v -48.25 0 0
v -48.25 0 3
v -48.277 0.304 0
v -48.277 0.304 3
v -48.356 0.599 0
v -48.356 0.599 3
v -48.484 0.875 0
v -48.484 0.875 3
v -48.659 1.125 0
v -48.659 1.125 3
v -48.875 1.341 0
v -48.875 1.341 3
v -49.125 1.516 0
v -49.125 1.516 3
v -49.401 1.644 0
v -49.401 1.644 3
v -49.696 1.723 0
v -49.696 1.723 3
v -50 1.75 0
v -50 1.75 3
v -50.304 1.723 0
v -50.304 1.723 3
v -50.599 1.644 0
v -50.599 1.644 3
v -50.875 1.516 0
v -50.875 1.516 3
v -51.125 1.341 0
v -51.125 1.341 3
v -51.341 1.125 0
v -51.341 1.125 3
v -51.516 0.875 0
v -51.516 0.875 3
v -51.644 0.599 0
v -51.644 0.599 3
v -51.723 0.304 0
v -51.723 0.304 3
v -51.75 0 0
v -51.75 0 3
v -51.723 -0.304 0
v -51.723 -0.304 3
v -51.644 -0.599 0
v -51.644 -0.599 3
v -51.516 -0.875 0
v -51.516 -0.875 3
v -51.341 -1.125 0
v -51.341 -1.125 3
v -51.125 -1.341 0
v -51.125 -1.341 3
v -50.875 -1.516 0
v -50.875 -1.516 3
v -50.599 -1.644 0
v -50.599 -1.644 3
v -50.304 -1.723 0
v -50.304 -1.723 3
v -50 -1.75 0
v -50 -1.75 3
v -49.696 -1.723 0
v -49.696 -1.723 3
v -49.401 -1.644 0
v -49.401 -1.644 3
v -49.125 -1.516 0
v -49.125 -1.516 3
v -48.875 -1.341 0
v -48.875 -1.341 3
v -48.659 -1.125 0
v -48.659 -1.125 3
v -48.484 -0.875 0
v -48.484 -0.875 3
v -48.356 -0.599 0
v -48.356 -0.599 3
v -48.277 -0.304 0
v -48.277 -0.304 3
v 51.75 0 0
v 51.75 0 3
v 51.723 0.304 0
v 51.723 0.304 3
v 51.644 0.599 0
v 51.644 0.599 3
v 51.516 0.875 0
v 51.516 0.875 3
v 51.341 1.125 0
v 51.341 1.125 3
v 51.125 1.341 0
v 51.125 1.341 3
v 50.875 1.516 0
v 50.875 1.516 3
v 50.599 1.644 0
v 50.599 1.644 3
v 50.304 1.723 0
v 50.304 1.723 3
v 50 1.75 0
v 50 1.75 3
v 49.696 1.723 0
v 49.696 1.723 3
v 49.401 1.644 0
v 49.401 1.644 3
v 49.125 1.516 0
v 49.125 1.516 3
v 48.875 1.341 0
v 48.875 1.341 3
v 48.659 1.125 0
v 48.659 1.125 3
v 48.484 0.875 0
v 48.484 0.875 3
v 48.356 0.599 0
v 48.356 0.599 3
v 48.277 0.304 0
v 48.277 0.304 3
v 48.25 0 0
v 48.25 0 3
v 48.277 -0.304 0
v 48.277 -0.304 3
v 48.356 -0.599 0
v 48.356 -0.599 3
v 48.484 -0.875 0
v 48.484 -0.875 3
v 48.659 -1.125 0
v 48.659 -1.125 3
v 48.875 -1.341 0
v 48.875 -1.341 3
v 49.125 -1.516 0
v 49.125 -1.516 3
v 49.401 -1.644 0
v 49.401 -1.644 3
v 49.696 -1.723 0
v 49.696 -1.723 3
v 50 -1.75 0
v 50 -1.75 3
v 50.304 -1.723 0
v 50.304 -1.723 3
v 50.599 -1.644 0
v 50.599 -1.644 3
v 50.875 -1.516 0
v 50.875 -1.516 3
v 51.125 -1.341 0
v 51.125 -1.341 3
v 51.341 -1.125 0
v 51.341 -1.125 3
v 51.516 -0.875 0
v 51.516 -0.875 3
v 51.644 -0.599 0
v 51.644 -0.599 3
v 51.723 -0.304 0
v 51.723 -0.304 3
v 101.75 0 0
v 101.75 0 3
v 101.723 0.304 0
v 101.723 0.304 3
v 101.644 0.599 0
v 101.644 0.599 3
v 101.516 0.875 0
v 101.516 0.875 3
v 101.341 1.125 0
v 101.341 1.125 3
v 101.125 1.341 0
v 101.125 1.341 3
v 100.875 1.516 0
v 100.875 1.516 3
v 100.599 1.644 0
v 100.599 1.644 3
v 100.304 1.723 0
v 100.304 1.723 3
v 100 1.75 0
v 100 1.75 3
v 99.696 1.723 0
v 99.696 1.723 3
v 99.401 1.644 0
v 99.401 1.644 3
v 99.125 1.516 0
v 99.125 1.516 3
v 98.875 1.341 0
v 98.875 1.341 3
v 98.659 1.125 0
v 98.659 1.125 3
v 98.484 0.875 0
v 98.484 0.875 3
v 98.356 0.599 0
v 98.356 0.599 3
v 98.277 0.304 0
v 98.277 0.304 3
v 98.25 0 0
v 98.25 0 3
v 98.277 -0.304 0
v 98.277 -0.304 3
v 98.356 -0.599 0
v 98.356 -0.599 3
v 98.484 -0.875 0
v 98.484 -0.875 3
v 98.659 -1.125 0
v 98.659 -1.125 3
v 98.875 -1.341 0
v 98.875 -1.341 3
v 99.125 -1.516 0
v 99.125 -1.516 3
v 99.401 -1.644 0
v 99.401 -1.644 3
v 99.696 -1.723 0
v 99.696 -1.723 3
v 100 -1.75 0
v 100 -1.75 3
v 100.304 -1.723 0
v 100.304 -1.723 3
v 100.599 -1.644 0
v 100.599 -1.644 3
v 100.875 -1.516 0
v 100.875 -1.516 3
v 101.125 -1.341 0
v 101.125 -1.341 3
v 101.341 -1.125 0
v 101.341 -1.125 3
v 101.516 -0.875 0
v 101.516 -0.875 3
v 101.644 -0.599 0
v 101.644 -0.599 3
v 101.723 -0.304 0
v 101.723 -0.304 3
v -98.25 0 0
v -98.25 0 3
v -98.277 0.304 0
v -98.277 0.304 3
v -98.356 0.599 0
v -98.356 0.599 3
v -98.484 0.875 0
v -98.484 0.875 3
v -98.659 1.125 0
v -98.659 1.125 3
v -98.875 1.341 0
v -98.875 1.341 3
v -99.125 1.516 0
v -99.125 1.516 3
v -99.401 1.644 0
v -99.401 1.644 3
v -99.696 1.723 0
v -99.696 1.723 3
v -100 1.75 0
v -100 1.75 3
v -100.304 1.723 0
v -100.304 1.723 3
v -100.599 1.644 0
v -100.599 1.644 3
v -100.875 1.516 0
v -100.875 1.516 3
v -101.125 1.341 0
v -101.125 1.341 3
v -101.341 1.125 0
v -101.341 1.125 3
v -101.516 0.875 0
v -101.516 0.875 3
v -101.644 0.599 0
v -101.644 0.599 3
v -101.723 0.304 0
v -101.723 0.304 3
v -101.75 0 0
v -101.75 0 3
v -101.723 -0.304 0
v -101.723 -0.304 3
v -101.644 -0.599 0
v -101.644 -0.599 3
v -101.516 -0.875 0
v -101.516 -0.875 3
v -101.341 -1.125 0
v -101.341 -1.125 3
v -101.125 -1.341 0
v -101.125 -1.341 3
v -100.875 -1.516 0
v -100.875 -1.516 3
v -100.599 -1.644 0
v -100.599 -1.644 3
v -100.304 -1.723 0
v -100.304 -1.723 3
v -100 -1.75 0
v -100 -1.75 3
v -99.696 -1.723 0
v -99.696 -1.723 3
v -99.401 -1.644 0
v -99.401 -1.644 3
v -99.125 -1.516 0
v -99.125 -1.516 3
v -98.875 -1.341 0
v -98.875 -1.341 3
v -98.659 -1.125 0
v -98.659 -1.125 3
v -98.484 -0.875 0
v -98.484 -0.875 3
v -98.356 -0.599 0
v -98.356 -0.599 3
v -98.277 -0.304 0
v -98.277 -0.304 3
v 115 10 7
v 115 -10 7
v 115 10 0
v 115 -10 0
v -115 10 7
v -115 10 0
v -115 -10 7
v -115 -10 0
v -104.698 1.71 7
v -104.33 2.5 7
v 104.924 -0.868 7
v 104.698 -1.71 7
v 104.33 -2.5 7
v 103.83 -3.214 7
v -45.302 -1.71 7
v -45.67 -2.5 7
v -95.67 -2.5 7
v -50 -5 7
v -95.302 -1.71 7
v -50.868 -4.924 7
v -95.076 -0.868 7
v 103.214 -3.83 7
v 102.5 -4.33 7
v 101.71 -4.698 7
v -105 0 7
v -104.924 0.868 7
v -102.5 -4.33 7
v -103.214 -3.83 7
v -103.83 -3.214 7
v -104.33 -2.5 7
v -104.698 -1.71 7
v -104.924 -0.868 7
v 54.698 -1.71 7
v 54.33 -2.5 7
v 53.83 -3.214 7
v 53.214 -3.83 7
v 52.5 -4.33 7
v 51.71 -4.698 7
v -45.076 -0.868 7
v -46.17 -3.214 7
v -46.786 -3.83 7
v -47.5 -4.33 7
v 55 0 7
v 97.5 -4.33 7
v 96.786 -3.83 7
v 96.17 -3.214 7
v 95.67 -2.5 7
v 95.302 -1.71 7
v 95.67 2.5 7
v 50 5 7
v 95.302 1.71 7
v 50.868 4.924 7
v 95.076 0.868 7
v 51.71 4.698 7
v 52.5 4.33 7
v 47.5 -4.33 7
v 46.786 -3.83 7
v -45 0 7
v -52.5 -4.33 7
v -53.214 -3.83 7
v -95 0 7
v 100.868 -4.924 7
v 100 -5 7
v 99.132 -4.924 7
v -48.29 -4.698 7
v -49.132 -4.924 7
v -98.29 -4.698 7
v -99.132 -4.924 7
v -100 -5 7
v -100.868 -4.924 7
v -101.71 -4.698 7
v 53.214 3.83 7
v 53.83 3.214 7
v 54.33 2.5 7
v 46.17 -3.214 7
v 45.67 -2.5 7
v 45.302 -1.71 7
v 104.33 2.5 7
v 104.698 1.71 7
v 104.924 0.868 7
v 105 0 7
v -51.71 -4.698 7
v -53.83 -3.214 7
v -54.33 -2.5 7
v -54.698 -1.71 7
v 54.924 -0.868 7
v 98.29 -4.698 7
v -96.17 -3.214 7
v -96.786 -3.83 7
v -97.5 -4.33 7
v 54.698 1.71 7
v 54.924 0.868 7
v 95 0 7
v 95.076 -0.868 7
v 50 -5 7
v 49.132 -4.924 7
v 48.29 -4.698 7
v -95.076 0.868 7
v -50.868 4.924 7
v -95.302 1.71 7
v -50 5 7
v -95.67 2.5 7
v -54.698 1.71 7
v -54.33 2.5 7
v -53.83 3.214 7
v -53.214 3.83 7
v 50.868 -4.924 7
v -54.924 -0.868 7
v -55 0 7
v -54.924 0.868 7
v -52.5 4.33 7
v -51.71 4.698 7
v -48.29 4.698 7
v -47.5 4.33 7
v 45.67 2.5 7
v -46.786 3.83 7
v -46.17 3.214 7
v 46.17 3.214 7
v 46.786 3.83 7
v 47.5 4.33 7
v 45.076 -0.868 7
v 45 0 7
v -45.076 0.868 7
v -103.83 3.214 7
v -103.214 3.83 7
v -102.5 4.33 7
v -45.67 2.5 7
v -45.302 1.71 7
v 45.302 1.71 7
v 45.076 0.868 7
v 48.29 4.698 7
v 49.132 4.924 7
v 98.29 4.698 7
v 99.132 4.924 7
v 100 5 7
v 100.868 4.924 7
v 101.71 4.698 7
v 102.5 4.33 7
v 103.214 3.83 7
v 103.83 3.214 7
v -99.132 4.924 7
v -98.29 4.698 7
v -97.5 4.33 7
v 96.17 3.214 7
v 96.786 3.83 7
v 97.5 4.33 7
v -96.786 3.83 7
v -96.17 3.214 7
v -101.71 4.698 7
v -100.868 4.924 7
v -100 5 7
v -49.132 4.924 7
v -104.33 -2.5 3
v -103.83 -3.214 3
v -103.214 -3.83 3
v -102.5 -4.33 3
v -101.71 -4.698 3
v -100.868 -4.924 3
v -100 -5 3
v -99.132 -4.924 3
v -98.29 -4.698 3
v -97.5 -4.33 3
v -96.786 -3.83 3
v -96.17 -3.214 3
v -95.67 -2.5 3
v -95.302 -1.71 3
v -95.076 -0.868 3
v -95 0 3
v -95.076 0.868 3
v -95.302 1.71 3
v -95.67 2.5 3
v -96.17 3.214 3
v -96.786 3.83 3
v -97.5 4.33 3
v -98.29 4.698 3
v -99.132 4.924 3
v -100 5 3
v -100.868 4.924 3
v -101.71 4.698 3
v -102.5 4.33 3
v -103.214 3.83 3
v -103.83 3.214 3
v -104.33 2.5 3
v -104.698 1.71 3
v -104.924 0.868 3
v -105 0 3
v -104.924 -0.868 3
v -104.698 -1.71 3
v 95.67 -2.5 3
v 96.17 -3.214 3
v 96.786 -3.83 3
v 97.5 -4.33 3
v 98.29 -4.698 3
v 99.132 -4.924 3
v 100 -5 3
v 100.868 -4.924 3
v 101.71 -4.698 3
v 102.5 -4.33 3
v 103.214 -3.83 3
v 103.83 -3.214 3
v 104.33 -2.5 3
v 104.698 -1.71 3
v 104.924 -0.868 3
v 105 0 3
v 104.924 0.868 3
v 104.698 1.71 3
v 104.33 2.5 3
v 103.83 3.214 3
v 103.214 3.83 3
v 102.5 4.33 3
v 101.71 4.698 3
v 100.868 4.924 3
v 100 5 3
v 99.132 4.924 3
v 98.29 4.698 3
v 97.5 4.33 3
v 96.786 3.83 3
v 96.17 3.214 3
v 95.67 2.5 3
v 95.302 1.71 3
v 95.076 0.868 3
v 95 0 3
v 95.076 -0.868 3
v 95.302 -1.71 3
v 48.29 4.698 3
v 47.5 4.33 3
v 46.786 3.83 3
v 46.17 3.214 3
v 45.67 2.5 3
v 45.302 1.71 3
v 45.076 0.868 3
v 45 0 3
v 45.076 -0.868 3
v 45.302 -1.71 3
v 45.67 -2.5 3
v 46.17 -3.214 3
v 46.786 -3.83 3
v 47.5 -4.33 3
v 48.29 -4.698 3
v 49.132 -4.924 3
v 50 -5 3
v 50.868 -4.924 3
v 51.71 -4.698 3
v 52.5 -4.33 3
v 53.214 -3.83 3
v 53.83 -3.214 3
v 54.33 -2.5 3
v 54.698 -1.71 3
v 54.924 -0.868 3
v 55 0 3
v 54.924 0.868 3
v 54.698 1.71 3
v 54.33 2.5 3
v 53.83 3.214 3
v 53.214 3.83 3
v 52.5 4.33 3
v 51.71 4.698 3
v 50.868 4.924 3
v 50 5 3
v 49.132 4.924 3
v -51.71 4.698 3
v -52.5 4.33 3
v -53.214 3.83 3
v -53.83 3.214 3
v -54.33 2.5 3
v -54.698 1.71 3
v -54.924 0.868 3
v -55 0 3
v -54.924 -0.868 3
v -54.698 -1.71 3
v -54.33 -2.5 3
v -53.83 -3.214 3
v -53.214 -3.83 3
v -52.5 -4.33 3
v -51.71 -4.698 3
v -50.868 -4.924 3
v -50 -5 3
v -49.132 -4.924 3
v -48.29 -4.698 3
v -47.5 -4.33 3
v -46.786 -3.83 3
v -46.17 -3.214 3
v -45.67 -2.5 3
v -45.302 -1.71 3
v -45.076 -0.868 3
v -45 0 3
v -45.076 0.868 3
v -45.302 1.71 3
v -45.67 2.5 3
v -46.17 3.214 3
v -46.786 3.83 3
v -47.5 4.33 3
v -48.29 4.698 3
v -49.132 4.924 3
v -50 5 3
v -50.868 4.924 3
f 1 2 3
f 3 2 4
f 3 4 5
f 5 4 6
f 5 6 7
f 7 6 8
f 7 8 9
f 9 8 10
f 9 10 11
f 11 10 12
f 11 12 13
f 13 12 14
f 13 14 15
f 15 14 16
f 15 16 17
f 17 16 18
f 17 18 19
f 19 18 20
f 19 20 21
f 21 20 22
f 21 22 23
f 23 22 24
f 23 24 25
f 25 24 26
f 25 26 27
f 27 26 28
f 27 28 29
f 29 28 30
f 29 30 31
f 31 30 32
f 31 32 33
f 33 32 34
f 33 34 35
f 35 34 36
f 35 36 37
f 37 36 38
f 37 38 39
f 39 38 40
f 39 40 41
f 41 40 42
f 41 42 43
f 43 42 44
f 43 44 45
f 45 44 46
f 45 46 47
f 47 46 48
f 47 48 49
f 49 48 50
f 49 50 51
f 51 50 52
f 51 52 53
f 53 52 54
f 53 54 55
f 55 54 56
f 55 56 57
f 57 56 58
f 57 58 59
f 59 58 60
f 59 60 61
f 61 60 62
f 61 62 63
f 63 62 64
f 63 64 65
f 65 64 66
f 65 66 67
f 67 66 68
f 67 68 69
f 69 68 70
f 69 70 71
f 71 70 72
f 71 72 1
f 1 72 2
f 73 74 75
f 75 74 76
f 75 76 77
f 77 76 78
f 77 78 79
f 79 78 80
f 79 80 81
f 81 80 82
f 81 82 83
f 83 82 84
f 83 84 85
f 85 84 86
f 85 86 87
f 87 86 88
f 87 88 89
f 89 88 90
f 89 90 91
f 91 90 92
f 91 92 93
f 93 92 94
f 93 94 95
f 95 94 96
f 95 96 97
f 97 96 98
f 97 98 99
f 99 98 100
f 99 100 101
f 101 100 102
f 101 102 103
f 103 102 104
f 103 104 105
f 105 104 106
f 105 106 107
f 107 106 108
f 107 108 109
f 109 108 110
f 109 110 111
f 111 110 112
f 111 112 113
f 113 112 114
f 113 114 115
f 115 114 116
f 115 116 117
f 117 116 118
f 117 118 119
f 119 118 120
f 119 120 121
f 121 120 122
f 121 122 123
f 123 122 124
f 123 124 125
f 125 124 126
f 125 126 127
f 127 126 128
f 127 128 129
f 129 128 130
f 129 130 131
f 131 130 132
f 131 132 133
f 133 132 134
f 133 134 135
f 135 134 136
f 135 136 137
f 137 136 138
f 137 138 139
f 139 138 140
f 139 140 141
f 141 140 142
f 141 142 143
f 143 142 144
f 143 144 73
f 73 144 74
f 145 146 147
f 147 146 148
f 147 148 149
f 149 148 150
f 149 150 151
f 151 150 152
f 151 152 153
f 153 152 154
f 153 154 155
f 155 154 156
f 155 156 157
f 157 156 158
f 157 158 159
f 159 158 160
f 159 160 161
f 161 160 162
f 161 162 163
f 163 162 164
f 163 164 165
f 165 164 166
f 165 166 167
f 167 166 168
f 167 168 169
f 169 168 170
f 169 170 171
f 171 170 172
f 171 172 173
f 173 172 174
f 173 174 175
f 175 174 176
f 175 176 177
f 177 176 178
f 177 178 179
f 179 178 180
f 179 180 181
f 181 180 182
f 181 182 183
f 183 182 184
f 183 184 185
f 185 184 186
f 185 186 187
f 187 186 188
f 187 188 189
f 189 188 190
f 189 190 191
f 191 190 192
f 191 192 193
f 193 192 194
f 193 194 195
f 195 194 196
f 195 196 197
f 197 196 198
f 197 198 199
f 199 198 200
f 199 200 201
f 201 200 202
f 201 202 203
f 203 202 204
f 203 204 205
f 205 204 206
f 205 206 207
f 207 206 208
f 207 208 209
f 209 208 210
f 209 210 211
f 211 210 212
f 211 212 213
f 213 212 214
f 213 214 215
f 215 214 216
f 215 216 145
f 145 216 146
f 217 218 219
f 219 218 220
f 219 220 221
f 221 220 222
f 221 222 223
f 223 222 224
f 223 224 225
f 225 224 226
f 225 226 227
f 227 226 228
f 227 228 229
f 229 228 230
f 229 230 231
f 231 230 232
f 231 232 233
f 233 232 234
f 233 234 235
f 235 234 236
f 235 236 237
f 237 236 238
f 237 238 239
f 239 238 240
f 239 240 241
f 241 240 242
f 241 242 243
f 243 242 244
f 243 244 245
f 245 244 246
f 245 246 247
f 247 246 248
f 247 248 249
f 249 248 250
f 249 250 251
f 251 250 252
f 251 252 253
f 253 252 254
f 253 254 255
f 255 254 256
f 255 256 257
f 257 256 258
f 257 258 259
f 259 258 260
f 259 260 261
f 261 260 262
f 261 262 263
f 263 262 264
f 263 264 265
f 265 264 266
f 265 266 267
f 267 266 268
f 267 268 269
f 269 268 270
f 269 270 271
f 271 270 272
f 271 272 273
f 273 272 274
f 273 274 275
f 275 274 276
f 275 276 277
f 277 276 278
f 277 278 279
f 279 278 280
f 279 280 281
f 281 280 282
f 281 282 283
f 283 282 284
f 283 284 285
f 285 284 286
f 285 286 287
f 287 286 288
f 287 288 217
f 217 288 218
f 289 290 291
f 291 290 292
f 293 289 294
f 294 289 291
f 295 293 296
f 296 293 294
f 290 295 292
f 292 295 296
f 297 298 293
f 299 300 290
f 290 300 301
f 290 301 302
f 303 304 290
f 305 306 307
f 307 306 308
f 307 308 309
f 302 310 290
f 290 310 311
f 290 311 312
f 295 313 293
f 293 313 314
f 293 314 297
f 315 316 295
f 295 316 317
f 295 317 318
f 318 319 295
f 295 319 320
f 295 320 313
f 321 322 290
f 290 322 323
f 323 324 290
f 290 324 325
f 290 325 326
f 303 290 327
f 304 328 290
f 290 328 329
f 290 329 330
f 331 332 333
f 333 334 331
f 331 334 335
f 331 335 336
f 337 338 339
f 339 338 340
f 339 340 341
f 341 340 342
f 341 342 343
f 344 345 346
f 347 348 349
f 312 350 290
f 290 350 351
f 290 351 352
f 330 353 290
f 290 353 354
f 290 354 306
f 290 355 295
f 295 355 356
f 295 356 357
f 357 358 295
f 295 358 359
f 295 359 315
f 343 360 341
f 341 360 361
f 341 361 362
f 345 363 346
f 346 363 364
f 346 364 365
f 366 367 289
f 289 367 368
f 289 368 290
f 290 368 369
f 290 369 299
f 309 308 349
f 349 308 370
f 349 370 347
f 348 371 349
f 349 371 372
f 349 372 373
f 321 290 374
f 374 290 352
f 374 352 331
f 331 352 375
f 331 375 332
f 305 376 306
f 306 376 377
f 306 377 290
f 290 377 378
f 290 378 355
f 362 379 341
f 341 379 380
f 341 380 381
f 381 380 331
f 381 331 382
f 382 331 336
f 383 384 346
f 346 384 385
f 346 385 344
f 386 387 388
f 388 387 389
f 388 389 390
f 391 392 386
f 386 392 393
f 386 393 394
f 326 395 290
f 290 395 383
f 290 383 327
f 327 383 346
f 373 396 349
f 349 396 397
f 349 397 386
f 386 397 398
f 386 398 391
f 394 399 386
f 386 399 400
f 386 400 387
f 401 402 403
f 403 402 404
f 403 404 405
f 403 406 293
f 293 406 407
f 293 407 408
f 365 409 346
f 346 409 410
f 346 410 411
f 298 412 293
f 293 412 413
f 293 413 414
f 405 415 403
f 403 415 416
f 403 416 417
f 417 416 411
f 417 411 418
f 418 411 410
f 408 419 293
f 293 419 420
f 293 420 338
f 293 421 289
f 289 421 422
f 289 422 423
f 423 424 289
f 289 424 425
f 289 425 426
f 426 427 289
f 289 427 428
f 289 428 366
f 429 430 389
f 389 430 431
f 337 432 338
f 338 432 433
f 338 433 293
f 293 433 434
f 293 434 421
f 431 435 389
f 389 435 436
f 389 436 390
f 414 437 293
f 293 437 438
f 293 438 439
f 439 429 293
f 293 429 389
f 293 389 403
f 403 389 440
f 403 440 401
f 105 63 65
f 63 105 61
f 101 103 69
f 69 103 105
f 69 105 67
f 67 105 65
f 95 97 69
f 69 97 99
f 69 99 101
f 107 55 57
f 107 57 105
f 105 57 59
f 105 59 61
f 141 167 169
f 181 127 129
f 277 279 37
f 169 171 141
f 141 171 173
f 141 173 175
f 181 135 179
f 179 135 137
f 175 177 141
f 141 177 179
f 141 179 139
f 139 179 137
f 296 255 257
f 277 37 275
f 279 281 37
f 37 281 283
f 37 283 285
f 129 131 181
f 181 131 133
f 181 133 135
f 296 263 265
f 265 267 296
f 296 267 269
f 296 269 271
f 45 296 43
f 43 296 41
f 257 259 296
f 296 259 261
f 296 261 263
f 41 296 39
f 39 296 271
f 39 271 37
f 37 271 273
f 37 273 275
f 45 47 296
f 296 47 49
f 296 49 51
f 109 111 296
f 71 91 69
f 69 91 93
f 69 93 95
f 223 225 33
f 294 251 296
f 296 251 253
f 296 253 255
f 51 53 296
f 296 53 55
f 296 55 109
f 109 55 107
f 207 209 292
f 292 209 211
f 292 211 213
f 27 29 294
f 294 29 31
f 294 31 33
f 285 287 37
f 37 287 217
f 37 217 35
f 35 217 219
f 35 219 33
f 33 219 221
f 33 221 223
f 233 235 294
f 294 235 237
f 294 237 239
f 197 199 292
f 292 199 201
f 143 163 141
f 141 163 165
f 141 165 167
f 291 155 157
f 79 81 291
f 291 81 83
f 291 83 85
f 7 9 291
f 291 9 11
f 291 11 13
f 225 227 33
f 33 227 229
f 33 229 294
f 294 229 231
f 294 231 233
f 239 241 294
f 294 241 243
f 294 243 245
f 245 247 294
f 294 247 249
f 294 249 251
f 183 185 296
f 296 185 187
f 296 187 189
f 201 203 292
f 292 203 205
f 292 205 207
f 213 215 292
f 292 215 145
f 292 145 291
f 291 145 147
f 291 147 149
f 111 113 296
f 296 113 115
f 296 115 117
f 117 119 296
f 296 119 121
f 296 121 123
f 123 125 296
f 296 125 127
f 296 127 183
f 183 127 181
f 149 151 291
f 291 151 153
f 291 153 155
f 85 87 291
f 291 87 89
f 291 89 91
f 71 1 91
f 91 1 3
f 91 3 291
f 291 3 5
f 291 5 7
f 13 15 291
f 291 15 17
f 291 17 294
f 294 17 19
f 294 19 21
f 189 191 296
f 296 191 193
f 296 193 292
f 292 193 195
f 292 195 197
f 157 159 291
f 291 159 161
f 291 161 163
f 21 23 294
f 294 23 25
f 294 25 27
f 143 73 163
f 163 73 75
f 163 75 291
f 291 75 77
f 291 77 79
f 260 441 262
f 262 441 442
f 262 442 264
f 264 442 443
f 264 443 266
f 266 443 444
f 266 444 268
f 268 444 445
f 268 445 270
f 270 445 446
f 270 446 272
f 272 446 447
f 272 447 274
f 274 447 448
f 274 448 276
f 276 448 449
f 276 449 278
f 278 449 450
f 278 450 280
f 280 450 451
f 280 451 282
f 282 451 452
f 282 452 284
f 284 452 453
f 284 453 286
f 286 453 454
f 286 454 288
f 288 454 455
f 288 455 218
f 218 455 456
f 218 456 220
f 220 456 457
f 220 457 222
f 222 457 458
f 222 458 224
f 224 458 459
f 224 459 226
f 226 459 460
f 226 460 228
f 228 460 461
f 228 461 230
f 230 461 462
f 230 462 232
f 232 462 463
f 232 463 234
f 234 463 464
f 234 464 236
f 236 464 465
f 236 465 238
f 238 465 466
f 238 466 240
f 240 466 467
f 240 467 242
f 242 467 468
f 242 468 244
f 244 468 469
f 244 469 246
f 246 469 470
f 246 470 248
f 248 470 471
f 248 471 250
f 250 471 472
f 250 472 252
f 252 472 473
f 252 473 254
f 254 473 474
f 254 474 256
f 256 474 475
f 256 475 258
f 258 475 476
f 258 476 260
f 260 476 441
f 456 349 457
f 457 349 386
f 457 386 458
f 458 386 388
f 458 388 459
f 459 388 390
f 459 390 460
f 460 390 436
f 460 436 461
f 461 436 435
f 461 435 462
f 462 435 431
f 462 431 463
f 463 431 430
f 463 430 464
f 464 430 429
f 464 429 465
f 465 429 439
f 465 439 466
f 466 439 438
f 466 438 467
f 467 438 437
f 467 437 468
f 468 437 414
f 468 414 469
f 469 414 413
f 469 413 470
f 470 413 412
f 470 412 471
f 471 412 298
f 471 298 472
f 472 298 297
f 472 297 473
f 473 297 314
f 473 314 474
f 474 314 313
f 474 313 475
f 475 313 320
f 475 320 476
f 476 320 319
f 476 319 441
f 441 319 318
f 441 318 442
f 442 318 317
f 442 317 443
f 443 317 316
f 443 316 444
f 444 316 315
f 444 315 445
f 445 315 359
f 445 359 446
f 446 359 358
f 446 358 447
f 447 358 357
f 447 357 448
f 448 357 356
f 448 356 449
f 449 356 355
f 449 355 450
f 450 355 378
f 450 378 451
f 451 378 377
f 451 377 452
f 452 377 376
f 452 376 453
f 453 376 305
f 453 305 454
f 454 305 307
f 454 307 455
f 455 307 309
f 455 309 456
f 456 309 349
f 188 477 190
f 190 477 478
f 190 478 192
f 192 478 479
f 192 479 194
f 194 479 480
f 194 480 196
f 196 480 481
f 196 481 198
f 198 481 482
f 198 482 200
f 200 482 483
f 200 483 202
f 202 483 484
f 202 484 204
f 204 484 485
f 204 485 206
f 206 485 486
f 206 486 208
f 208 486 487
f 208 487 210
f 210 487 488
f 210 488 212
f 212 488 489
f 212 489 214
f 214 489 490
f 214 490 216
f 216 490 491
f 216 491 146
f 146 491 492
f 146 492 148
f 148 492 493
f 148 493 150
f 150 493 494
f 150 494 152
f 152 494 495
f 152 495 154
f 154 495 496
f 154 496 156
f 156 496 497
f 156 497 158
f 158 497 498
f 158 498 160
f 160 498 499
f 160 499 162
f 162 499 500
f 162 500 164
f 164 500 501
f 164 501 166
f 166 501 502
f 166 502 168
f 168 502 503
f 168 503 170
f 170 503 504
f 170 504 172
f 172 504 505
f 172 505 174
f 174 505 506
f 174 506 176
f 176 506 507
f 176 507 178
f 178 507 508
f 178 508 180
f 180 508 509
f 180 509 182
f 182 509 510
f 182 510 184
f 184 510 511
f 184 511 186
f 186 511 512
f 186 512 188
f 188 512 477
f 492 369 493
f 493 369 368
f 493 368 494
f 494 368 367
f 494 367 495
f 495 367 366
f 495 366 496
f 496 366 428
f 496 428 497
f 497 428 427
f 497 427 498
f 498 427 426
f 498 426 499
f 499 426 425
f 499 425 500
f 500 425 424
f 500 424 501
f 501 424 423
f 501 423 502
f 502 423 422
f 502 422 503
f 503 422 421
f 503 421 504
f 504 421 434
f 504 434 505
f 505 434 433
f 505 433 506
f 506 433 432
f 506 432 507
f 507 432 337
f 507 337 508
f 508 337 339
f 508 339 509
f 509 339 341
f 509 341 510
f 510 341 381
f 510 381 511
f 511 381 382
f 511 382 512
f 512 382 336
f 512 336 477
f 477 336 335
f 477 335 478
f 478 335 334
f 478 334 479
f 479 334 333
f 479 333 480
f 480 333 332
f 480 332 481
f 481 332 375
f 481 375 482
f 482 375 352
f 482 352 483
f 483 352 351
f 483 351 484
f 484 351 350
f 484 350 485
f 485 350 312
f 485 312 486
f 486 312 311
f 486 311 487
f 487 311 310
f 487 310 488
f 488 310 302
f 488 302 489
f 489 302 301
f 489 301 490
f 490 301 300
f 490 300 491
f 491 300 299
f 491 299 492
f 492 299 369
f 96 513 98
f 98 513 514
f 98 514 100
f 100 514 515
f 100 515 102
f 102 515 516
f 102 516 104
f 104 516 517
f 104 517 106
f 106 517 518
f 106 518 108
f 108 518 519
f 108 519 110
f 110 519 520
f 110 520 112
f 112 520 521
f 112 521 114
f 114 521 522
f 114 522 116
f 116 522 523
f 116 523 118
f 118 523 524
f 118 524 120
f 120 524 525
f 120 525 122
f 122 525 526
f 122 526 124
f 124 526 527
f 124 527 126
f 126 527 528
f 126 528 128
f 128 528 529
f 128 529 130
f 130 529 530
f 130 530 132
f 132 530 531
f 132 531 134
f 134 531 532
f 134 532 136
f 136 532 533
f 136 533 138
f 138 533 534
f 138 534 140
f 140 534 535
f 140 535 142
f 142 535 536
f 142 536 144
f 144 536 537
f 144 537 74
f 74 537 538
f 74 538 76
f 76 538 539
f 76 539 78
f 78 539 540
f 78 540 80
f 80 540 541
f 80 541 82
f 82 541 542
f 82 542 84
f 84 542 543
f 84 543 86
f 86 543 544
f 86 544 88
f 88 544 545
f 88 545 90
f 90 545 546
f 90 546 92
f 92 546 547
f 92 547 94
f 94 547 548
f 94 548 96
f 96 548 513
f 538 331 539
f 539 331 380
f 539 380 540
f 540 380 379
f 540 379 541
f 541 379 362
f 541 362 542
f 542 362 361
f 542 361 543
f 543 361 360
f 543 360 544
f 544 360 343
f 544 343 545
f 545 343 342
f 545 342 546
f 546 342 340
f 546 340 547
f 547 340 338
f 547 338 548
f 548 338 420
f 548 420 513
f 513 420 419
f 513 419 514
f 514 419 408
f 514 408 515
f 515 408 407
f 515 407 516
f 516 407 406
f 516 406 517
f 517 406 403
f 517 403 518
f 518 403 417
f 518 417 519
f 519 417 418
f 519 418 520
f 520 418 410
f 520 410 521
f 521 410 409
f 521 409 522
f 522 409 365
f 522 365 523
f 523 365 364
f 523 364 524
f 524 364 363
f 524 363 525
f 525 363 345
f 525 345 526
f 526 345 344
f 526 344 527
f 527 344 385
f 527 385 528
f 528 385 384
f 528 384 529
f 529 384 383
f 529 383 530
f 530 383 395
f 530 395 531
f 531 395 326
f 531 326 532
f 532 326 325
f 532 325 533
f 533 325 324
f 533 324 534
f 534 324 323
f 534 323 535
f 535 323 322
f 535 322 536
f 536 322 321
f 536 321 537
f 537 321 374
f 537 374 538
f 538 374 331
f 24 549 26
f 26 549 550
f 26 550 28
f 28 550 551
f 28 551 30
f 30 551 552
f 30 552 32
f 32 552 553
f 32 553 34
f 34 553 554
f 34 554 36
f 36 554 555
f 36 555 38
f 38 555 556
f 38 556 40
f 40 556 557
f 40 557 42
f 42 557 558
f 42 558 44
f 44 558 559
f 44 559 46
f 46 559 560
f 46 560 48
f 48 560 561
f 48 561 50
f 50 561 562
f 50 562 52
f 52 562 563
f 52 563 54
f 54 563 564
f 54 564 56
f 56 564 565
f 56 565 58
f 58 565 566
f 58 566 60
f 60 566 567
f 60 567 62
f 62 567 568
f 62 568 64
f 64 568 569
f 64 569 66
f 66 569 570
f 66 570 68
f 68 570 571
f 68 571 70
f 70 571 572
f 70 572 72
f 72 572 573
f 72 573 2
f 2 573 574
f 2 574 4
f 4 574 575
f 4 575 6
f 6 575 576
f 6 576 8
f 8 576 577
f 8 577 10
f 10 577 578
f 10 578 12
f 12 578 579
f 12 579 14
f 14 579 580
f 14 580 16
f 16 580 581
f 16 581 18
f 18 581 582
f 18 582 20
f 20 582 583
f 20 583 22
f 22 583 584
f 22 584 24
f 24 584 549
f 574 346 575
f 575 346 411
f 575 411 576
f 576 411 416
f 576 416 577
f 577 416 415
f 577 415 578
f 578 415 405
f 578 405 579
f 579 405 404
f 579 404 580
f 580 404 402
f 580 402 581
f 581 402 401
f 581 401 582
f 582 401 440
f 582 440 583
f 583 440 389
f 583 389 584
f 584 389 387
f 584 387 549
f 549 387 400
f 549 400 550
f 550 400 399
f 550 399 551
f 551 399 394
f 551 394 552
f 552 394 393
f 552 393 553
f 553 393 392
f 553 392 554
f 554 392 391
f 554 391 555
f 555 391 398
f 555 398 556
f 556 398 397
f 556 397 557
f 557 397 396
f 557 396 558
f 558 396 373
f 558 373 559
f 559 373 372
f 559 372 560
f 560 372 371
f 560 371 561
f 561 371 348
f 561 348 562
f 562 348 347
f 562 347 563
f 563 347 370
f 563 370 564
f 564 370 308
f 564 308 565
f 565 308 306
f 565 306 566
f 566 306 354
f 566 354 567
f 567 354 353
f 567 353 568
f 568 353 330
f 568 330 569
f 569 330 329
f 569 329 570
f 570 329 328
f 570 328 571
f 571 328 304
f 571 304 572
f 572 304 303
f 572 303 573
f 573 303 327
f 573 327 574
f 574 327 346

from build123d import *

# Parameters (mm, degrees)
SKETCH1_W           = 230
SKETCH1_H           = 20
BOSS_EXTRUDE1_DEPTH = 7
SKETCH2_R           = 1.75
CUT_EXTRUDE1_DEPTH  = 8
SKETCH3_R           = 5
CUT_EXTRUDE2_DEPTH  = 4


with BuildPart() as part:
    # Sketch1 → Boss-Extrude1 (new body)
    with BuildSketch(Plane.XY):
        Rectangle(SKETCH1_W, SKETCH1_H)
    extrude(amount=BOSS_EXTRUDE1_DEPTH)

    # Sketch2 → Cut-Extrude1 (cut, through all)
    with BuildSketch(Plane.XY.offset(7)):
        with Locations((-100, 0)):
            Circle(SKETCH2_R)
        with Locations((100, 0)):
            Circle(SKETCH2_R)
        with Locations((50, 0)):
            Circle(SKETCH2_R)
        with Locations((-50, 0)):
            Circle(SKETCH2_R)
    extrude(amount=-CUT_EXTRUDE1_DEPTH, mode=Mode.SUBTRACT)

    # Sketch3 → Cut-Extrude2 (cut)
    with BuildSketch(Plane.XY.offset(7)):
        with Locations((-100, 0)):
            Circle(SKETCH3_R)
        with Locations((-50, 0)):
            Circle(SKETCH3_R)
        with Locations((50, 0)):
            Circle(SKETCH3_R)
        with Locations((100, 0)):
            Circle(SKETCH3_R)
    extrude(amount=-CUT_EXTRUDE2_DEPTH, mode=Mode.SUBTRACT)


solid = part.part
